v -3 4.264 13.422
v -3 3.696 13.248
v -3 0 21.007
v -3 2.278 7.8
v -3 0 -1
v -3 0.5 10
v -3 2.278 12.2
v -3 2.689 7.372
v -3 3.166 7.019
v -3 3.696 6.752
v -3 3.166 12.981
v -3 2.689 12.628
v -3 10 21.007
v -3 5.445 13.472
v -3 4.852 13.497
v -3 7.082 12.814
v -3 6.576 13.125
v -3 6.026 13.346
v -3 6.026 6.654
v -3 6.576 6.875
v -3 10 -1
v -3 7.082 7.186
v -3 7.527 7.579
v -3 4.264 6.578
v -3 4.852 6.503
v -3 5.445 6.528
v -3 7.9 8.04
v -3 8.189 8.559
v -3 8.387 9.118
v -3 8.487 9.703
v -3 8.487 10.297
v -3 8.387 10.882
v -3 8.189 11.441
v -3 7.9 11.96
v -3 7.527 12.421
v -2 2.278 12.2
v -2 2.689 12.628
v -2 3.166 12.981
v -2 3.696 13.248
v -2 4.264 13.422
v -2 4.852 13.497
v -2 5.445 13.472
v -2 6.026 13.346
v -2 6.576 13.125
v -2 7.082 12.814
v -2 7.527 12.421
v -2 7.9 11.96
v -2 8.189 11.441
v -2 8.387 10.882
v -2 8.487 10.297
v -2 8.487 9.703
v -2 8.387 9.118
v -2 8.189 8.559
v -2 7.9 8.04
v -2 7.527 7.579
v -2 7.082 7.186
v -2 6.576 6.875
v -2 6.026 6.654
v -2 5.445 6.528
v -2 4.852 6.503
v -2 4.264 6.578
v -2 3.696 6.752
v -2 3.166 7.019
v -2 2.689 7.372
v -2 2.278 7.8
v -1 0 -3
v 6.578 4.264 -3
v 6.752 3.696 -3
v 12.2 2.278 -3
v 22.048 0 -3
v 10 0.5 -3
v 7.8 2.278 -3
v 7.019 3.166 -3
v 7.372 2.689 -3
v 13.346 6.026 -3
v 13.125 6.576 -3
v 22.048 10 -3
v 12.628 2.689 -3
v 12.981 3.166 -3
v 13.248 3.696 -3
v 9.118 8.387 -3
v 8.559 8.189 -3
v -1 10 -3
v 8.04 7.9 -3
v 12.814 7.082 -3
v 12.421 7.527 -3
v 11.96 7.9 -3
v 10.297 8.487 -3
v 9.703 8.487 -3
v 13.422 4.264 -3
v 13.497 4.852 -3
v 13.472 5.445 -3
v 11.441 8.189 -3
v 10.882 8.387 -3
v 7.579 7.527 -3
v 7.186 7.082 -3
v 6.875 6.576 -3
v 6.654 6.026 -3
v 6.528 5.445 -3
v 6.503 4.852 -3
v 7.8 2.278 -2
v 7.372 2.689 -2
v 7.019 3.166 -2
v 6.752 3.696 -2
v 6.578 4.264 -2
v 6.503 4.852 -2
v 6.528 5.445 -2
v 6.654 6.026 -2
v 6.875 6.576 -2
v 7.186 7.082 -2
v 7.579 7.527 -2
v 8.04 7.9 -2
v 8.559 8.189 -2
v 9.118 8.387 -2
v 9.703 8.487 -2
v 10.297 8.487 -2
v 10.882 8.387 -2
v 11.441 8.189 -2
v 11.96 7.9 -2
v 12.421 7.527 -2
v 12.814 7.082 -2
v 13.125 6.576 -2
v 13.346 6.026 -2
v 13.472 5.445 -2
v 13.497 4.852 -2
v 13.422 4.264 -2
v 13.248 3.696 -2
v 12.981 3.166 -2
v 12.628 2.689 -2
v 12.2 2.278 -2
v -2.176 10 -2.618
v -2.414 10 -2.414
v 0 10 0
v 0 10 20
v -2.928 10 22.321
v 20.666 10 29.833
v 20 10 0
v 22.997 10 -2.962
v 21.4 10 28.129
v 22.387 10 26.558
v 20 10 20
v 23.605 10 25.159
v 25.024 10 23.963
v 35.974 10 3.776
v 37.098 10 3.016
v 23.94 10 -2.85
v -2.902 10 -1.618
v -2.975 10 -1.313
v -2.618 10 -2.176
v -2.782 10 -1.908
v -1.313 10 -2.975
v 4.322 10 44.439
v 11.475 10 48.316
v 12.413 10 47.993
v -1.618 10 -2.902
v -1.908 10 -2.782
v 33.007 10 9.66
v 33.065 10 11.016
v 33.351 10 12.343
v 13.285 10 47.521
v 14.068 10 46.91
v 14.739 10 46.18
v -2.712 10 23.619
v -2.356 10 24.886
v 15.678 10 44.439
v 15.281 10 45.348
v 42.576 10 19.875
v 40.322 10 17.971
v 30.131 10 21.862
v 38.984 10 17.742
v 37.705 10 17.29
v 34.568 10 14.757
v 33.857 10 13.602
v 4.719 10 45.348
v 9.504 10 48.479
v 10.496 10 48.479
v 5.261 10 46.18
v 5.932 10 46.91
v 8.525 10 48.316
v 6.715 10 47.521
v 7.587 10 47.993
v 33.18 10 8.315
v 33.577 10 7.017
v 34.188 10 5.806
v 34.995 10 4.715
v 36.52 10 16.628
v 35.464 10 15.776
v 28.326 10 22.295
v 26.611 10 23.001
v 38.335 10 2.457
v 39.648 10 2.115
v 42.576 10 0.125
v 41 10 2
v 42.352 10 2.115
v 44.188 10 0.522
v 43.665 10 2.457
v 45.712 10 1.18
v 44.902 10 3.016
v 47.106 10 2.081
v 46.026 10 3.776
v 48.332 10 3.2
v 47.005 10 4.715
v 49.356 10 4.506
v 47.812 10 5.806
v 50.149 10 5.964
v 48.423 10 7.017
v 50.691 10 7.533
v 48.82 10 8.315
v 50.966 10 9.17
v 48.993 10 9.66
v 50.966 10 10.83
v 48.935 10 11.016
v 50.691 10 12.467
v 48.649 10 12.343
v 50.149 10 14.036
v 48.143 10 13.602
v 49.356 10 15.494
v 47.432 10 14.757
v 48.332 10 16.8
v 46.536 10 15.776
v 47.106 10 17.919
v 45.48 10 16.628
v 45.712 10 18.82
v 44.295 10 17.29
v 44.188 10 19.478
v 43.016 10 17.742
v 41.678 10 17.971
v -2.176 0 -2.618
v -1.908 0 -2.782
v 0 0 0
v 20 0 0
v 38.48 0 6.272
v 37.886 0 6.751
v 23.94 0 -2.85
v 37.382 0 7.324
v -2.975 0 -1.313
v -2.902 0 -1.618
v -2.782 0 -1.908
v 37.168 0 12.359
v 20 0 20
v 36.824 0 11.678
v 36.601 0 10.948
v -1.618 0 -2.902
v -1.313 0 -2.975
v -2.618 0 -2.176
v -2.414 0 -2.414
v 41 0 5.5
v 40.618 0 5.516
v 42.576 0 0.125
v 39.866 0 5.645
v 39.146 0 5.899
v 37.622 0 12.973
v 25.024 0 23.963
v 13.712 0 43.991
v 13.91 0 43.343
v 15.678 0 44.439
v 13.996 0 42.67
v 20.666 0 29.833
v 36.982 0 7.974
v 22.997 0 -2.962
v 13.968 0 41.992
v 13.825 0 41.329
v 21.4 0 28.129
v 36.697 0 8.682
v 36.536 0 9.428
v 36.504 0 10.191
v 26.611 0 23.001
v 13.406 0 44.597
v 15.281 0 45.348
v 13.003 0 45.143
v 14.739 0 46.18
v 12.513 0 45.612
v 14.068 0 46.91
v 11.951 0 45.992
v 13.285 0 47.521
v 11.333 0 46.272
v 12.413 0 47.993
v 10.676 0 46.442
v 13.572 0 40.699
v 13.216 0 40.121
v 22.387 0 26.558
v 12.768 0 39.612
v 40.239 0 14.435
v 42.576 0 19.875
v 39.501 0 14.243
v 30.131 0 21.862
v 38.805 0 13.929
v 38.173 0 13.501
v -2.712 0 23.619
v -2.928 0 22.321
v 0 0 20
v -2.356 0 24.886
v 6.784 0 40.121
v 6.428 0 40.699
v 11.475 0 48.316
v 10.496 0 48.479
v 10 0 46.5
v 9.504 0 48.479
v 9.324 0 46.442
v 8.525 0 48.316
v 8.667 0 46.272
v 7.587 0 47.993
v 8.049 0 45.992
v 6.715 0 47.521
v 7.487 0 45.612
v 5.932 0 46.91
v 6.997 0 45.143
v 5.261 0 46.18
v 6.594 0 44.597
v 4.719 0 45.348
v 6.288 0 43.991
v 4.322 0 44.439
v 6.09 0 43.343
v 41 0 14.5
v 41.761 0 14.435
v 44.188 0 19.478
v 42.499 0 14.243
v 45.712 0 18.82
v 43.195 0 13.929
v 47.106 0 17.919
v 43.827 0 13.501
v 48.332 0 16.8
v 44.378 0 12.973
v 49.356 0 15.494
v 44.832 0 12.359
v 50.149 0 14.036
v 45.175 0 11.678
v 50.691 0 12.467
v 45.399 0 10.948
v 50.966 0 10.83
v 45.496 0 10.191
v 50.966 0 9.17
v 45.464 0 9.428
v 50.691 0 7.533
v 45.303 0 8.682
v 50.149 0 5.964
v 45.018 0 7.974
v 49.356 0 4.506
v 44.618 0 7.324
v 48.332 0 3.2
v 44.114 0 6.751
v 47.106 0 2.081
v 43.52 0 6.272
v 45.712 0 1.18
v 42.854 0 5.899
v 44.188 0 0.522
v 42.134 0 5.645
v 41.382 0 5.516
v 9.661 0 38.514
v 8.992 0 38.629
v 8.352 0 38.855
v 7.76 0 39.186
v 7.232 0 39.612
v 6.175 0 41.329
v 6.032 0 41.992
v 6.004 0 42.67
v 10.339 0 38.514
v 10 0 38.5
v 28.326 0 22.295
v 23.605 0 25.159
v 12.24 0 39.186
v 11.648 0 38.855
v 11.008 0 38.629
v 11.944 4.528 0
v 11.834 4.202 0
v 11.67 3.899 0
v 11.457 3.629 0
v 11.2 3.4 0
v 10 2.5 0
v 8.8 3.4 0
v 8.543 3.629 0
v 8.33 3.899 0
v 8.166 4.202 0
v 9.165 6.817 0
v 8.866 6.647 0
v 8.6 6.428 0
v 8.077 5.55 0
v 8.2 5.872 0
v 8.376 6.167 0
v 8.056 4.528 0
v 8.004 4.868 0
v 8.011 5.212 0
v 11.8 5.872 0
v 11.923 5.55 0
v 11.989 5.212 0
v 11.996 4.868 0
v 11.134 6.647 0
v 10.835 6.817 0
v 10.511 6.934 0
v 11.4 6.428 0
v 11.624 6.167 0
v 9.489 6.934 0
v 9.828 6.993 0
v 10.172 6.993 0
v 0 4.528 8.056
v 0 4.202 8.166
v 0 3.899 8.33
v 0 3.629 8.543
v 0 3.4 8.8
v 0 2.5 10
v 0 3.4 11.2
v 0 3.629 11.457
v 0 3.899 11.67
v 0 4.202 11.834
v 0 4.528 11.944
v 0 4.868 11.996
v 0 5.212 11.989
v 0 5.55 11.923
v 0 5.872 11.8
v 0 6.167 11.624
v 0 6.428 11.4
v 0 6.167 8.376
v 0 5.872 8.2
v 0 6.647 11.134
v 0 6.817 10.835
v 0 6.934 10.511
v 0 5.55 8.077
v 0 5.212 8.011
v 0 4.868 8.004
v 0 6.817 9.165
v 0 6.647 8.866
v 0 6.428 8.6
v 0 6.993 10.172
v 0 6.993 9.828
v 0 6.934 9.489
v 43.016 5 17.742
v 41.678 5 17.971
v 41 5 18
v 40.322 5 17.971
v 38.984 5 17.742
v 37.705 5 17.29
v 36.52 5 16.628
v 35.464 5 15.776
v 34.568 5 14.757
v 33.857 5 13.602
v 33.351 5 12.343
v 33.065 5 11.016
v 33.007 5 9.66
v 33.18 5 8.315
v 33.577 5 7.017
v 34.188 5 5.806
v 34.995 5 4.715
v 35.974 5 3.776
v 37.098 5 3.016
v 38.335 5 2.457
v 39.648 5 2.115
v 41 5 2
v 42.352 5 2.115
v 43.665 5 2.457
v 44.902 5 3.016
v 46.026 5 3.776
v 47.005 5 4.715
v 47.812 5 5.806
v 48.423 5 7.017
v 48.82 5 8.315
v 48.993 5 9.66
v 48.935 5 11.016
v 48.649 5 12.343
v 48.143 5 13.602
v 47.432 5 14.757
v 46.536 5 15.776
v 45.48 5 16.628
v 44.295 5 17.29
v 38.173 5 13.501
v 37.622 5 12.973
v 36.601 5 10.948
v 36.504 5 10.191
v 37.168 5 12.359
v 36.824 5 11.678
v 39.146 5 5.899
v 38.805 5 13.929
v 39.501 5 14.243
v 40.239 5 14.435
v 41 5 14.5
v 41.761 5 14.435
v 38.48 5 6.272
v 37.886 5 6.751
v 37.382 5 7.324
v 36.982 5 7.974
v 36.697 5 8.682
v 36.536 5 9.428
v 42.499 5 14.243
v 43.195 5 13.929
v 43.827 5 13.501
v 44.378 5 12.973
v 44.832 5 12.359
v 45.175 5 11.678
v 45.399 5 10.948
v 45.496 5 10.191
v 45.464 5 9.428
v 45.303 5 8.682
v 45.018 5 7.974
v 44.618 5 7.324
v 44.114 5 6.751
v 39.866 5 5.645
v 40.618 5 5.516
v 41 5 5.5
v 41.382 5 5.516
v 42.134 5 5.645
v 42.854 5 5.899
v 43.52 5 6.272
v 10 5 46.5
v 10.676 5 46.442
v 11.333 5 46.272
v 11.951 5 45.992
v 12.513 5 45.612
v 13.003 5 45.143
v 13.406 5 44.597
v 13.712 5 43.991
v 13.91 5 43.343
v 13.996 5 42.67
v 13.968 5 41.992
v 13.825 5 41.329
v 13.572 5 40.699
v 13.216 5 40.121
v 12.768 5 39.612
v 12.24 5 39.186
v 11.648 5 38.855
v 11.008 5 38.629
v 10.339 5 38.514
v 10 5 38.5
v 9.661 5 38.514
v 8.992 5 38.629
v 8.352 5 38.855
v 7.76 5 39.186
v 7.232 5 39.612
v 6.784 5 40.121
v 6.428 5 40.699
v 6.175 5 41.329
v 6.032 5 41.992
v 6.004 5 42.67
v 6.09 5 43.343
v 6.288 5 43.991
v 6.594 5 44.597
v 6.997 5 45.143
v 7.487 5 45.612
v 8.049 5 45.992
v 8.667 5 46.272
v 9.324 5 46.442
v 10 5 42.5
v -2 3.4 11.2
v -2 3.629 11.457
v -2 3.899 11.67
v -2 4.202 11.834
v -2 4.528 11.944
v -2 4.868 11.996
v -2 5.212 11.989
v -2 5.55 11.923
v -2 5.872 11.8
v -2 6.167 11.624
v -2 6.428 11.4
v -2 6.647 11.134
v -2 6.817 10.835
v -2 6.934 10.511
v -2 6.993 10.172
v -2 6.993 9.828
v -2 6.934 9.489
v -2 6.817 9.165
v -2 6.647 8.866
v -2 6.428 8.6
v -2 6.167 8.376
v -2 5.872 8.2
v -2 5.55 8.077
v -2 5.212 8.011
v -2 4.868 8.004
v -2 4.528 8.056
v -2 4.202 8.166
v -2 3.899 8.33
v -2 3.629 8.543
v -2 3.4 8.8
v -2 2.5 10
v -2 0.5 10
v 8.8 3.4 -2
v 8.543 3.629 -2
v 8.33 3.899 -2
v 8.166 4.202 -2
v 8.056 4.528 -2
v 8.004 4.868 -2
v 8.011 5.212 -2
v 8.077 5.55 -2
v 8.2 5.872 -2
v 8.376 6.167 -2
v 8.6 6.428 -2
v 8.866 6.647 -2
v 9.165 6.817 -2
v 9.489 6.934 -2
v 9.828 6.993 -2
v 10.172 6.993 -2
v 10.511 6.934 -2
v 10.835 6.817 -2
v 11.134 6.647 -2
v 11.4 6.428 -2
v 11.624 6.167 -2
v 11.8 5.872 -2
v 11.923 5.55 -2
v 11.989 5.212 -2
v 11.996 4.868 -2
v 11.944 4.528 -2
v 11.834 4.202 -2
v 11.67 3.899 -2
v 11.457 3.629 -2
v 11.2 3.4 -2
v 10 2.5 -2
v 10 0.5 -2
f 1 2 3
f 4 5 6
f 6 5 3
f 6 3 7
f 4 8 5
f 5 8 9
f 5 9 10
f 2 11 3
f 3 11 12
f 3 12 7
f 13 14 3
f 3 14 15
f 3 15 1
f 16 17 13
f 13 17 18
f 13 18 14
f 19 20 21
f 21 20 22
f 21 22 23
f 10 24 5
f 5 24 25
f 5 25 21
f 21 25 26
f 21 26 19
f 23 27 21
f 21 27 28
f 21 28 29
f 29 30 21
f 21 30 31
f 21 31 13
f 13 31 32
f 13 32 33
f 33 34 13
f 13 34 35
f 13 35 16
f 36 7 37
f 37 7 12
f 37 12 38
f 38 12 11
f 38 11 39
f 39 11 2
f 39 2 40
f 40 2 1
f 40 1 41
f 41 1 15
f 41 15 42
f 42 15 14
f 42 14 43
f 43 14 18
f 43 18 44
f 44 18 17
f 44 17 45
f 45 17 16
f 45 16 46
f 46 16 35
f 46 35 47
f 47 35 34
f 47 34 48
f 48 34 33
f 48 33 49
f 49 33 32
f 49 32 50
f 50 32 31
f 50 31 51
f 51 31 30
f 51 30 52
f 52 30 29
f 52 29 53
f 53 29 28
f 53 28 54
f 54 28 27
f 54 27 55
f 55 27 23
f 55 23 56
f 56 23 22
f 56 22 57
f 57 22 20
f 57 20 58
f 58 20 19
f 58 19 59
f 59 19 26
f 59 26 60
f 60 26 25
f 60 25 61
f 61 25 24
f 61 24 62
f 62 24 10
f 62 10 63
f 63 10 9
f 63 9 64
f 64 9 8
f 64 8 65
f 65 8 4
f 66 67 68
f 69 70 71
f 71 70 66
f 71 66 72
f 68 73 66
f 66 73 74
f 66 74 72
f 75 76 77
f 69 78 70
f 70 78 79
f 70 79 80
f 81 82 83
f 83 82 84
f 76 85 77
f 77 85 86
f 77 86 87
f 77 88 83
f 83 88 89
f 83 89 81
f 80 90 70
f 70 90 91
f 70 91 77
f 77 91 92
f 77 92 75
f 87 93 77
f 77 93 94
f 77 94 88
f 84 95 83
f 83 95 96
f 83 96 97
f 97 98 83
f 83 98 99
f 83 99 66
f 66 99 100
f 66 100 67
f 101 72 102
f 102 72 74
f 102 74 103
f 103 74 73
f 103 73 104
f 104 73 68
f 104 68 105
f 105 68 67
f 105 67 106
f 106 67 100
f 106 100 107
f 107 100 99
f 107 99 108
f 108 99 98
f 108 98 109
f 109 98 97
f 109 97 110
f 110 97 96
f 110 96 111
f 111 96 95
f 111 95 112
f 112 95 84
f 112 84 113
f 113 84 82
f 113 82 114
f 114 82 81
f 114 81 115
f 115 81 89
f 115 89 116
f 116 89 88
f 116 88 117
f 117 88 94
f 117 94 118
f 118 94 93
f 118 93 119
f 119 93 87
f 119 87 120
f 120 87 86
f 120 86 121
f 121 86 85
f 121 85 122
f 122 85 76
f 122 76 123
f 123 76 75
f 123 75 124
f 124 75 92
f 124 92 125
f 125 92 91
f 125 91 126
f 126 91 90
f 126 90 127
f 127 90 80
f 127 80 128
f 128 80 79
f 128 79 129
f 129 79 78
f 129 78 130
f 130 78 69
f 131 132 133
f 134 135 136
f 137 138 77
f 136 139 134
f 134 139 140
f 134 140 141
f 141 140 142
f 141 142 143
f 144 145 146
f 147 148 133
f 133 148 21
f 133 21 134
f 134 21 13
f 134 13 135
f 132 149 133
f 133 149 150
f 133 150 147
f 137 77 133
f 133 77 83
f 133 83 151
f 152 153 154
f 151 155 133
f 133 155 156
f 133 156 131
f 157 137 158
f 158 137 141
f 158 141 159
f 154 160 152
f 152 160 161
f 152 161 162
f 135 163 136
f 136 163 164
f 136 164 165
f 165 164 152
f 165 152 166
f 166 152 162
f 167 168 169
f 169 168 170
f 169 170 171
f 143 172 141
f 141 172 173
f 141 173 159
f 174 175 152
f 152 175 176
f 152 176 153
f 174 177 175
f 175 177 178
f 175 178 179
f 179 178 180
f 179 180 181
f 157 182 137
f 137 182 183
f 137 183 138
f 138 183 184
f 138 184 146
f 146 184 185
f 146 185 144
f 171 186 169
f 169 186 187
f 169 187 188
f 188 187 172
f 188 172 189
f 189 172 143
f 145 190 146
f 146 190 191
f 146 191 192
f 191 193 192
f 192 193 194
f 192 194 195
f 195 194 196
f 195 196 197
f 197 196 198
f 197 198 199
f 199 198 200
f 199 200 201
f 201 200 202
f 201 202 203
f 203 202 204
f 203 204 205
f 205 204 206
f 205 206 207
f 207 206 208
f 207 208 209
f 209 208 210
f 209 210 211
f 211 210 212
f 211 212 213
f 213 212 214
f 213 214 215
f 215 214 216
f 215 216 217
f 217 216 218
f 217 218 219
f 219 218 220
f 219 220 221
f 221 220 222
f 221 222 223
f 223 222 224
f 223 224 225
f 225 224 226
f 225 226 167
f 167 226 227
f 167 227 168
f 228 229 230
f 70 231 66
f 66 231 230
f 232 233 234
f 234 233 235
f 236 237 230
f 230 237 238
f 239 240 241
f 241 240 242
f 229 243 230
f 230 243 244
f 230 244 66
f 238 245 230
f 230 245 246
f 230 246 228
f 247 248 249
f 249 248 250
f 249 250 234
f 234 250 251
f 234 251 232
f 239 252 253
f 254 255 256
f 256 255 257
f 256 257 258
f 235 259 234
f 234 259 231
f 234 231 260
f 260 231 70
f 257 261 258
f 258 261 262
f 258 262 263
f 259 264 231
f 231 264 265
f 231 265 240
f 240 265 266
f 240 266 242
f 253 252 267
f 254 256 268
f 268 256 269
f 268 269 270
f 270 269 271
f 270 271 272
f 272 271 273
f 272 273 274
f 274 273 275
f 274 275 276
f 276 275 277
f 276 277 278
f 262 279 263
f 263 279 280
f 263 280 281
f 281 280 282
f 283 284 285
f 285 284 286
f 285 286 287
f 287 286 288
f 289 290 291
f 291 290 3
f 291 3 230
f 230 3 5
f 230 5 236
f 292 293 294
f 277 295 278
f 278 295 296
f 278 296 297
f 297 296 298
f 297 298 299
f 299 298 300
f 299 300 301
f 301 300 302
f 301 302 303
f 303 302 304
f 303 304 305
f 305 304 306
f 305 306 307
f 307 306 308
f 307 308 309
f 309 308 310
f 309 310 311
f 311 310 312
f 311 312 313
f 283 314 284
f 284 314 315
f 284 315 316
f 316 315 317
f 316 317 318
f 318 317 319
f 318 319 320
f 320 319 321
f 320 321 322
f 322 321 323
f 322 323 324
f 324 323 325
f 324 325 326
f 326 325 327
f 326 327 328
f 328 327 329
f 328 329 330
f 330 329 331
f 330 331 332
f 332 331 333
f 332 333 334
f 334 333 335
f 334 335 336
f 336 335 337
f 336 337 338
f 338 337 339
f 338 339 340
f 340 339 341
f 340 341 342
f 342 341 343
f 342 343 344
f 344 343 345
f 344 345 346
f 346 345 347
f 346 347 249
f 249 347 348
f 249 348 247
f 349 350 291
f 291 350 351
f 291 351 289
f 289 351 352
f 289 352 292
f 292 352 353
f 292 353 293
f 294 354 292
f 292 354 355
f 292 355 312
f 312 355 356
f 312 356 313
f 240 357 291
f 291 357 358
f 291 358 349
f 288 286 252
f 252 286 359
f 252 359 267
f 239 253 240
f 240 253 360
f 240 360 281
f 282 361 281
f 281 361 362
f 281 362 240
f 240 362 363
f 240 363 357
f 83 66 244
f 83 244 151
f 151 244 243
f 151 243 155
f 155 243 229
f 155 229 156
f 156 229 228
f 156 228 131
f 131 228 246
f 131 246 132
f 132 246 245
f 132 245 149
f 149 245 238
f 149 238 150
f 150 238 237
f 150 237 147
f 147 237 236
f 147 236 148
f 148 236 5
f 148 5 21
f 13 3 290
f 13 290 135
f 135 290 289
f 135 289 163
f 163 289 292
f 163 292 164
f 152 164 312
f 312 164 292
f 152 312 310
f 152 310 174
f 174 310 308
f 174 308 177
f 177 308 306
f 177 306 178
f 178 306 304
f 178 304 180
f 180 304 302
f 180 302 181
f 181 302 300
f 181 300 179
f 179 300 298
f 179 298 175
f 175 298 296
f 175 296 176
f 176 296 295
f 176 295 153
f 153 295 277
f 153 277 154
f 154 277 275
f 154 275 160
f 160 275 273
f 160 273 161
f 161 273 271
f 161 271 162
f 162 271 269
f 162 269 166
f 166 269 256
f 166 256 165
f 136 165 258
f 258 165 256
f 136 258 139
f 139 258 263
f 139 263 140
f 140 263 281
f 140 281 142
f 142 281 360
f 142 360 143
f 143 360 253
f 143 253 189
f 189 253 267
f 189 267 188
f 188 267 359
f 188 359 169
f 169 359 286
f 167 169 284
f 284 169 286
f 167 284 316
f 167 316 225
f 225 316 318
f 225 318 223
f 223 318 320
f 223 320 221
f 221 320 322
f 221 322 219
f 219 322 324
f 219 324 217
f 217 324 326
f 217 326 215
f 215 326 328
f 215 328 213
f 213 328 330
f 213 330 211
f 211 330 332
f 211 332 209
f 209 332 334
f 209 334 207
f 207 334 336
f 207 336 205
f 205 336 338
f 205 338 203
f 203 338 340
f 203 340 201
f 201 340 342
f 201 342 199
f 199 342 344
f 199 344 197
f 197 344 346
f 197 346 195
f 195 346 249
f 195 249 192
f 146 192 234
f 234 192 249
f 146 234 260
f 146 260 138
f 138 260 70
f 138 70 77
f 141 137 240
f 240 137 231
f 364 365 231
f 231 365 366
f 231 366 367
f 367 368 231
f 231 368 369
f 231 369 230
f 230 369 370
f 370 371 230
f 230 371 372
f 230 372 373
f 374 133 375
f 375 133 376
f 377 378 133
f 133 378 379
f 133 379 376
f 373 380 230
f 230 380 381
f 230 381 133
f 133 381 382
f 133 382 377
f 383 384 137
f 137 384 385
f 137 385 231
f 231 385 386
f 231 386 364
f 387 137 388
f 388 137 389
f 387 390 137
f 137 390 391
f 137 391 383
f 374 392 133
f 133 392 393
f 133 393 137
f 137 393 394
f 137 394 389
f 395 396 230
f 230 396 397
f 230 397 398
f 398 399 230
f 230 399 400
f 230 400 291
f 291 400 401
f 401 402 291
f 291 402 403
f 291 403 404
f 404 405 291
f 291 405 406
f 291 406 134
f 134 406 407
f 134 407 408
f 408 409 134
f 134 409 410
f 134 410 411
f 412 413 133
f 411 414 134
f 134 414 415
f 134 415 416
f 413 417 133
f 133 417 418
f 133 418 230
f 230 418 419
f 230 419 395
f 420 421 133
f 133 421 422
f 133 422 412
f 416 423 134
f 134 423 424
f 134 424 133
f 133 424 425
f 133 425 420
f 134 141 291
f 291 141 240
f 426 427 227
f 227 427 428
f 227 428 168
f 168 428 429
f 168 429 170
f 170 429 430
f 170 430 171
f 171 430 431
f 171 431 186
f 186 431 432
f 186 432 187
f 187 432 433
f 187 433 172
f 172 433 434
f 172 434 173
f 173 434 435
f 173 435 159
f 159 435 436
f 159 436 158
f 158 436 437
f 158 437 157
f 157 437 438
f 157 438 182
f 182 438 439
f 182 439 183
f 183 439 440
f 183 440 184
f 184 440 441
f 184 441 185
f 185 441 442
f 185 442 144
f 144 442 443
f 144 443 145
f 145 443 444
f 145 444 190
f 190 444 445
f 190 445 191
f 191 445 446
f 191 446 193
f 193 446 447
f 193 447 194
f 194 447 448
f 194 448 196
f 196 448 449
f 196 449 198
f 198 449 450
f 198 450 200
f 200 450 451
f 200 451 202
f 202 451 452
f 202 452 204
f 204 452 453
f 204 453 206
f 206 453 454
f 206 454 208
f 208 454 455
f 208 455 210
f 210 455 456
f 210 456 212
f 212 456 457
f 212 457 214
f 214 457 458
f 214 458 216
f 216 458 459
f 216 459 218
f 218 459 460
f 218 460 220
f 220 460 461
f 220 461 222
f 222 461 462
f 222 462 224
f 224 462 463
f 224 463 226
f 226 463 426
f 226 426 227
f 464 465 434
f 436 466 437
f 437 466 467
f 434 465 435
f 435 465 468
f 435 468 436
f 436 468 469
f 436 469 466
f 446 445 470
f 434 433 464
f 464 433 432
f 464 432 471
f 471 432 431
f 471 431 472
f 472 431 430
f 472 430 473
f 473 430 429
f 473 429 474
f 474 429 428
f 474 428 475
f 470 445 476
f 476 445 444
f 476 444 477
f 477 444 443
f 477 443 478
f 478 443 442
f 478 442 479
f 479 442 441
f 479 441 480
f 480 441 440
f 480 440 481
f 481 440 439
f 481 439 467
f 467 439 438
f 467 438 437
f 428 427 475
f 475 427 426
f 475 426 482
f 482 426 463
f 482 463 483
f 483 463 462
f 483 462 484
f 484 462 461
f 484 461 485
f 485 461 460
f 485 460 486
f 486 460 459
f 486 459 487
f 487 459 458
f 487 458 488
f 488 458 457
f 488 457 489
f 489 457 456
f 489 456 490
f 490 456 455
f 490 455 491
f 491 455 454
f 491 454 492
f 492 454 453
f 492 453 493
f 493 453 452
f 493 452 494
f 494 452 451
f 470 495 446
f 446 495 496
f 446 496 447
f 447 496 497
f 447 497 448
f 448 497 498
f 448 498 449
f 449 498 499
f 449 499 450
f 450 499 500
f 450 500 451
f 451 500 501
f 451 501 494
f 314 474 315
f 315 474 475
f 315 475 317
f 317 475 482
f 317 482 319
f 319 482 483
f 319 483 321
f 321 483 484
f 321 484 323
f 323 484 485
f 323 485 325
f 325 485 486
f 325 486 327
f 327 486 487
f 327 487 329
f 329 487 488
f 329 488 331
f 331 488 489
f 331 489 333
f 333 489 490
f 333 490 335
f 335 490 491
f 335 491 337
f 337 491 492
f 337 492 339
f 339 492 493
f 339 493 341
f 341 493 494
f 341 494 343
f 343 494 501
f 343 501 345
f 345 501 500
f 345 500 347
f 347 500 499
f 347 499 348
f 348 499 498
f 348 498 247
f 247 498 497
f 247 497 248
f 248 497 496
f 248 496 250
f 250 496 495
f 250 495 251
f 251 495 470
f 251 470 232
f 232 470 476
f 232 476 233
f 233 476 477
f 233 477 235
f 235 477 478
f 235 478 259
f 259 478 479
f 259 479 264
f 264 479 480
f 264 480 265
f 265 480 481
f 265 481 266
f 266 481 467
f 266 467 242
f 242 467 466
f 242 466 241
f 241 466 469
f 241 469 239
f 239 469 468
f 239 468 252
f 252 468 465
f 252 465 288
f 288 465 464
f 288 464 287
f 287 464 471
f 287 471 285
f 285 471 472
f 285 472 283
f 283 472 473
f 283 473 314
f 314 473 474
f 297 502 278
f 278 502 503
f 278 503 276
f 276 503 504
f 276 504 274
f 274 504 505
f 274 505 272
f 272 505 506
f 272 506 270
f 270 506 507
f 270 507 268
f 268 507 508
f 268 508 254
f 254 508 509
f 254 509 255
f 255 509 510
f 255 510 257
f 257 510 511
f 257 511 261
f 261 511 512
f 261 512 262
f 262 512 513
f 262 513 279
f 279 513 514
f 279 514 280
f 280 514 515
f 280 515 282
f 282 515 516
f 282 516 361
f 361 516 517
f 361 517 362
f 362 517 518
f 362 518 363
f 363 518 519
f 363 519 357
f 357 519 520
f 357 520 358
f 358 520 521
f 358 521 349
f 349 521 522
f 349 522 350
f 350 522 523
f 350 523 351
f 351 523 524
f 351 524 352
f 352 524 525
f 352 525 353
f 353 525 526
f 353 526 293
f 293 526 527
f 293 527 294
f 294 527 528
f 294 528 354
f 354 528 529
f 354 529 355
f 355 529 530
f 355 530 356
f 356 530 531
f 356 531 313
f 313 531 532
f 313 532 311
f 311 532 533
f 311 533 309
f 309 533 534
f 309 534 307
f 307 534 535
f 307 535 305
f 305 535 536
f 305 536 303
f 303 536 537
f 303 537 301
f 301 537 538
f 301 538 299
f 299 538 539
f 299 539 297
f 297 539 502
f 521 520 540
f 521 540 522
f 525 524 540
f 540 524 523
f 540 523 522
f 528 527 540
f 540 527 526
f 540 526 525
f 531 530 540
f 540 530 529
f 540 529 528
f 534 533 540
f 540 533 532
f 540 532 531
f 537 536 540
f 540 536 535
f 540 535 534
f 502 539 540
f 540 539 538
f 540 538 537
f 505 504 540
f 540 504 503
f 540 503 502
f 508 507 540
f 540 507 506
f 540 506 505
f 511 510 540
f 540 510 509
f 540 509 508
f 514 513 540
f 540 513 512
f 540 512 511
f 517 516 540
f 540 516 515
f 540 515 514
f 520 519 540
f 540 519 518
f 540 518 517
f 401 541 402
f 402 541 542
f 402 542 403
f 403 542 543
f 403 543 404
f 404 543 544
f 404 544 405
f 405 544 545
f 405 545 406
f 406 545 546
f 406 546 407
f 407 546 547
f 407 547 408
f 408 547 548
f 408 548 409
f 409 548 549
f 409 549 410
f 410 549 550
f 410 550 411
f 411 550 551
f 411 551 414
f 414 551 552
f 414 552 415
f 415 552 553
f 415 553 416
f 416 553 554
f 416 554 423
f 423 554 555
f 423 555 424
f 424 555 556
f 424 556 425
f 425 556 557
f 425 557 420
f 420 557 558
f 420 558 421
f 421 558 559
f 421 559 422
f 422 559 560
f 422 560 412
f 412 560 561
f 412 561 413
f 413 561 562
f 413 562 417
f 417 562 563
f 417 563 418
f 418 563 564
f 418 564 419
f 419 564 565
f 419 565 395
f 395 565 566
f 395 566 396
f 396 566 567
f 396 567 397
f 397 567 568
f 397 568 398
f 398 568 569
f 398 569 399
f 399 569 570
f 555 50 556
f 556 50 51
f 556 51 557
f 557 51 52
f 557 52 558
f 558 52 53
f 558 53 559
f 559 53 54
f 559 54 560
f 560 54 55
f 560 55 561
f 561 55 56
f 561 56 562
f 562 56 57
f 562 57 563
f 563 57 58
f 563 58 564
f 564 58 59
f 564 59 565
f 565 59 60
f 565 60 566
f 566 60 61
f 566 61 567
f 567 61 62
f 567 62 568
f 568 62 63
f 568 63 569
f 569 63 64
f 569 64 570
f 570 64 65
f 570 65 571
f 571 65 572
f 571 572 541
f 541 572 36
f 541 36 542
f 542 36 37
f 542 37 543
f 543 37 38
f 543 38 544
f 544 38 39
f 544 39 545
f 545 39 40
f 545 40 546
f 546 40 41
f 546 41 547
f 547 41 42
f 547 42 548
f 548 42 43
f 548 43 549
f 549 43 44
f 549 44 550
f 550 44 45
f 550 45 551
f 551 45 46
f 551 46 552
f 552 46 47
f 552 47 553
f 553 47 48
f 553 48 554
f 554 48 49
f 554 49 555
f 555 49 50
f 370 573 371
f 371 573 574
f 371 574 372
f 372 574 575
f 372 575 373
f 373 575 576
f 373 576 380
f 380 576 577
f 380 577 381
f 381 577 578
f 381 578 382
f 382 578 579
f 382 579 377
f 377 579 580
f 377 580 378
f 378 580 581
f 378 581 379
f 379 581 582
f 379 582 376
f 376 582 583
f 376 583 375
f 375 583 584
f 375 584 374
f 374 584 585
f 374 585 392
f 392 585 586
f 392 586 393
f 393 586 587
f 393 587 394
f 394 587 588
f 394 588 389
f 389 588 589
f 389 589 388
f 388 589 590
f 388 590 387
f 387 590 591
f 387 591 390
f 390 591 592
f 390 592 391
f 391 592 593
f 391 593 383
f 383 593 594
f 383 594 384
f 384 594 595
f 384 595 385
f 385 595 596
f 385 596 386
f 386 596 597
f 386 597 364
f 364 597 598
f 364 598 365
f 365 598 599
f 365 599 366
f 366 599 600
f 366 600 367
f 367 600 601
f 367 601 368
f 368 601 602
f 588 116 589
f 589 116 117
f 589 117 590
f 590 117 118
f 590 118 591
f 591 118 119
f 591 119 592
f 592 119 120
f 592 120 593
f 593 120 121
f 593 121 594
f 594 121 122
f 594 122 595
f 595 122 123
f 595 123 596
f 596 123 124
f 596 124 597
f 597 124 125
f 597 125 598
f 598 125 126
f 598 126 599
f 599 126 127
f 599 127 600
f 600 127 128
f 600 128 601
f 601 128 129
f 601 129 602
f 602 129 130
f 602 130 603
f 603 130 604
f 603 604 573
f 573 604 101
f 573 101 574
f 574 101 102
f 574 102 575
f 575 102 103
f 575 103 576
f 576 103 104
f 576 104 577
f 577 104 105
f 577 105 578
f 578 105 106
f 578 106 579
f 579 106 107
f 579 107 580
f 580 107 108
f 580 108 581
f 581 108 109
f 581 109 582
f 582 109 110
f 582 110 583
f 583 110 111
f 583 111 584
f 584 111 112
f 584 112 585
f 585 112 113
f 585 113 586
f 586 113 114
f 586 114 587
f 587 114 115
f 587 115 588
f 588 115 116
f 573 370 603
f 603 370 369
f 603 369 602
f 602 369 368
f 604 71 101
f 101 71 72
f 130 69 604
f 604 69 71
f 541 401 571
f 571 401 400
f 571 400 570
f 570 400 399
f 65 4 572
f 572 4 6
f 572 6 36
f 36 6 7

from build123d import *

# Parameters (mm, degrees)
SKETCH1_W                               = 20
SKETCH1_H                               = 20
BOSS_EXTRUDE1_DEPTH                     = 10
SKETCH2_R                               = 8
CUT_EXTRUDE2_DEPTH                      = 46
SKETCH3_R                               = 4
SKETCH3_R_2                             = 4.5
CUT_EXTRUDE3_DEPTH                      = 10
CBORE_FOR_M5_HEX_HEAD_BOLT1_D           = 4
CBORE_FOR_M5_HEX_HEAD_BOLT1_DEPTH       = 10
CBORE_FOR_M5_HEX_HEAD_BOLT1_CBORE_D     = 7
CBORE_FOR_M5_HEX_HEAD_BOLT1_CBORE_DEPTH = 1
CBORE_FOR_M5_HEX_HEAD_BOLT2_D           = 4
CBORE_FOR_M5_HEX_HEAD_BOLT2_DEPTH       = 10
CBORE_FOR_M5_HEX_HEAD_BOLT2_CBORE_D     = 7
CBORE_FOR_M5_HEX_HEAD_BOLT2_CBORE_DEPTH = 1
CUT_EXTRUDE4_DEPTH                      = 2
CUT_EXTRUDE5_DEPTH                      = 1
CUT_EXTRUDE6_DEPTH                      = 2
CUT_EXTRUDE7_DEPTH                      = 1


with BuildPart() as part:
    # Sketch1 → Boss-Extrude1 (new body)
    with BuildSketch(Plane(origin=(0, 0, 0), x_dir=(1, 0, 0), z_dir=(0, 1, 0))):
        with BuildLine():
            Line((23.939871077, 2.849965846), (42.576368333, -0.125028462))
            ThreePointArc((42.576368333, -0.125028462), (51, -10), (42.576368333, -19.874971538))
            Line((42.576368333, -19.874971538), (30.130588759, -21.86172489))
            ThreePointArc((30.130588759, -21.86172489), (24.291669579, -24.533541475), (20.666245259, -29.833341429))
            Line((20.666245259, -29.833341429), (15.677992749, -44.439174654))
            ThreePointArc((15.677992749, -44.439174654), (10, -48.5), (4.322007251, -44.439174654))
            Line((4.322007251, -44.439174654), (-2.355985499, -24.885704137))
            ThreePointArc((-2.355985499, -24.885704137), (-2.837901545, -22.973082941), (-3, -21.00735483))
            Line((-3, -21.00735483), (-3, 1))
            ThreePointArc((-3, 1), (-2.414213562, 2.414213562), (-1, 3))
            Line((-1, 3), (22.048229077, 3))
            ThreePointArc((22.048229077, 3), (22.997020375, 2.962432657), (23.939871077, 2.849965846))
        make_face()
        with Locations((10, -10)):
            Rectangle(SKETCH1_W, SKETCH1_H, mode=Mode.SUBTRACT)
    extrude(amount=BOSS_EXTRUDE1_DEPTH)

    # Sketch2 → Cut-Extrude2 (cut)
    with BuildSketch(Plane(origin=(0, 5, 0), x_dir=(1, 0, 0), z_dir=(0, 1, 0))):
        with Locations(Location((41, -10, 0), (0, 0, 90))):
            Circle(SKETCH2_R)
    extrude(amount=CUT_EXTRUDE2_DEPTH, mode=Mode.SUBTRACT)

    # Sketch3 → Cut-Extrude3 (cut)
    with BuildSketch(Plane(origin=(0, 5, 0), x_dir=(1, 0, 0), z_dir=(0, 1, 0))):
        with Locations(Location((10, -42.5, 0), (0, 0, 90))):
            Circle(SKETCH3_R)
        with Locations(Location((41, -10, 0), (0, 0, 90))):
            Circle(SKETCH3_R_2)
    extrude(amount=-CUT_EXTRUDE3_DEPTH, mode=Mode.SUBTRACT)

    # CBORE for M5 Hex Head Bolt1
    with Locations(Plane.ZY.offset(3)):
        with Locations((10, 5)):
            CounterBoreHole(CBORE_FOR_M5_HEX_HEAD_BOLT1_D / 2, CBORE_FOR_M5_HEX_HEAD_BOLT1_CBORE_D / 2, CBORE_FOR_M5_HEX_HEAD_BOLT1_CBORE_DEPTH, depth=CBORE_FOR_M5_HEX_HEAD_BOLT1_DEPTH)

    # CBORE for M5 Hex Head Bolt2
    with Locations(Plane(origin=(0, 0, -3), x_dir=(-1, 0, 0), z_dir=(0, 0, -1))):
        with Locations((-10, 5)):
            CounterBoreHole(CBORE_FOR_M5_HEX_HEAD_BOLT2_D / 2, CBORE_FOR_M5_HEX_HEAD_BOLT2_CBORE_D / 2, CBORE_FOR_M5_HEX_HEAD_BOLT2_CBORE_DEPTH, depth=CBORE_FOR_M5_HEX_HEAD_BOLT2_DEPTH)

    # Sketch9 → Cut-Extrude4 (cut)
    with BuildSketch(Plane(origin=(0, 0, -2), x_dir=(-1, 0, 0), z_dir=(0, 0, -1))):
        Polygon((-10, 2.5), (-8.8, 3.4), (-11.2, 3.4), align=None)
    extrude(amount=-CUT_EXTRUDE4_DEPTH, mode=Mode.SUBTRACT)

    # Sketch10 → Cut-Extrude5 (cut)
    with BuildSketch(Plane(origin=(0, 0, -2), x_dir=(-1, 0, 0), z_dir=(0, 0, -1))):
        Polygon((-10, 0.5), (-7.800112236, 2.277777778), (-12.199887764, 2.277777778), align=None)
    extrude(amount=CUT_EXTRUDE5_DEPTH, mode=Mode.SUBTRACT)

    # Sketch11 → Cut-Extrude6 (cut)
    with BuildSketch(Plane.ZY.offset(2)):
        Polygon((10, 2.5), (11.2, 3.4), (8.8, 3.4), align=None)
    extrude(amount=-CUT_EXTRUDE6_DEPTH, mode=Mode.SUBTRACT)

    # Sketch13 → Cut-Extrude7 (cut)
    with BuildSketch(Plane.ZY.offset(2)):
        Polygon((10, 0.5), (7.800112236, 2.277777778), (12.199887764, 2.277777778), align=None)
    extrude(amount=CUT_EXTRUDE7_DEPTH, mode=Mode.SUBTRACT)


solid = part.part
